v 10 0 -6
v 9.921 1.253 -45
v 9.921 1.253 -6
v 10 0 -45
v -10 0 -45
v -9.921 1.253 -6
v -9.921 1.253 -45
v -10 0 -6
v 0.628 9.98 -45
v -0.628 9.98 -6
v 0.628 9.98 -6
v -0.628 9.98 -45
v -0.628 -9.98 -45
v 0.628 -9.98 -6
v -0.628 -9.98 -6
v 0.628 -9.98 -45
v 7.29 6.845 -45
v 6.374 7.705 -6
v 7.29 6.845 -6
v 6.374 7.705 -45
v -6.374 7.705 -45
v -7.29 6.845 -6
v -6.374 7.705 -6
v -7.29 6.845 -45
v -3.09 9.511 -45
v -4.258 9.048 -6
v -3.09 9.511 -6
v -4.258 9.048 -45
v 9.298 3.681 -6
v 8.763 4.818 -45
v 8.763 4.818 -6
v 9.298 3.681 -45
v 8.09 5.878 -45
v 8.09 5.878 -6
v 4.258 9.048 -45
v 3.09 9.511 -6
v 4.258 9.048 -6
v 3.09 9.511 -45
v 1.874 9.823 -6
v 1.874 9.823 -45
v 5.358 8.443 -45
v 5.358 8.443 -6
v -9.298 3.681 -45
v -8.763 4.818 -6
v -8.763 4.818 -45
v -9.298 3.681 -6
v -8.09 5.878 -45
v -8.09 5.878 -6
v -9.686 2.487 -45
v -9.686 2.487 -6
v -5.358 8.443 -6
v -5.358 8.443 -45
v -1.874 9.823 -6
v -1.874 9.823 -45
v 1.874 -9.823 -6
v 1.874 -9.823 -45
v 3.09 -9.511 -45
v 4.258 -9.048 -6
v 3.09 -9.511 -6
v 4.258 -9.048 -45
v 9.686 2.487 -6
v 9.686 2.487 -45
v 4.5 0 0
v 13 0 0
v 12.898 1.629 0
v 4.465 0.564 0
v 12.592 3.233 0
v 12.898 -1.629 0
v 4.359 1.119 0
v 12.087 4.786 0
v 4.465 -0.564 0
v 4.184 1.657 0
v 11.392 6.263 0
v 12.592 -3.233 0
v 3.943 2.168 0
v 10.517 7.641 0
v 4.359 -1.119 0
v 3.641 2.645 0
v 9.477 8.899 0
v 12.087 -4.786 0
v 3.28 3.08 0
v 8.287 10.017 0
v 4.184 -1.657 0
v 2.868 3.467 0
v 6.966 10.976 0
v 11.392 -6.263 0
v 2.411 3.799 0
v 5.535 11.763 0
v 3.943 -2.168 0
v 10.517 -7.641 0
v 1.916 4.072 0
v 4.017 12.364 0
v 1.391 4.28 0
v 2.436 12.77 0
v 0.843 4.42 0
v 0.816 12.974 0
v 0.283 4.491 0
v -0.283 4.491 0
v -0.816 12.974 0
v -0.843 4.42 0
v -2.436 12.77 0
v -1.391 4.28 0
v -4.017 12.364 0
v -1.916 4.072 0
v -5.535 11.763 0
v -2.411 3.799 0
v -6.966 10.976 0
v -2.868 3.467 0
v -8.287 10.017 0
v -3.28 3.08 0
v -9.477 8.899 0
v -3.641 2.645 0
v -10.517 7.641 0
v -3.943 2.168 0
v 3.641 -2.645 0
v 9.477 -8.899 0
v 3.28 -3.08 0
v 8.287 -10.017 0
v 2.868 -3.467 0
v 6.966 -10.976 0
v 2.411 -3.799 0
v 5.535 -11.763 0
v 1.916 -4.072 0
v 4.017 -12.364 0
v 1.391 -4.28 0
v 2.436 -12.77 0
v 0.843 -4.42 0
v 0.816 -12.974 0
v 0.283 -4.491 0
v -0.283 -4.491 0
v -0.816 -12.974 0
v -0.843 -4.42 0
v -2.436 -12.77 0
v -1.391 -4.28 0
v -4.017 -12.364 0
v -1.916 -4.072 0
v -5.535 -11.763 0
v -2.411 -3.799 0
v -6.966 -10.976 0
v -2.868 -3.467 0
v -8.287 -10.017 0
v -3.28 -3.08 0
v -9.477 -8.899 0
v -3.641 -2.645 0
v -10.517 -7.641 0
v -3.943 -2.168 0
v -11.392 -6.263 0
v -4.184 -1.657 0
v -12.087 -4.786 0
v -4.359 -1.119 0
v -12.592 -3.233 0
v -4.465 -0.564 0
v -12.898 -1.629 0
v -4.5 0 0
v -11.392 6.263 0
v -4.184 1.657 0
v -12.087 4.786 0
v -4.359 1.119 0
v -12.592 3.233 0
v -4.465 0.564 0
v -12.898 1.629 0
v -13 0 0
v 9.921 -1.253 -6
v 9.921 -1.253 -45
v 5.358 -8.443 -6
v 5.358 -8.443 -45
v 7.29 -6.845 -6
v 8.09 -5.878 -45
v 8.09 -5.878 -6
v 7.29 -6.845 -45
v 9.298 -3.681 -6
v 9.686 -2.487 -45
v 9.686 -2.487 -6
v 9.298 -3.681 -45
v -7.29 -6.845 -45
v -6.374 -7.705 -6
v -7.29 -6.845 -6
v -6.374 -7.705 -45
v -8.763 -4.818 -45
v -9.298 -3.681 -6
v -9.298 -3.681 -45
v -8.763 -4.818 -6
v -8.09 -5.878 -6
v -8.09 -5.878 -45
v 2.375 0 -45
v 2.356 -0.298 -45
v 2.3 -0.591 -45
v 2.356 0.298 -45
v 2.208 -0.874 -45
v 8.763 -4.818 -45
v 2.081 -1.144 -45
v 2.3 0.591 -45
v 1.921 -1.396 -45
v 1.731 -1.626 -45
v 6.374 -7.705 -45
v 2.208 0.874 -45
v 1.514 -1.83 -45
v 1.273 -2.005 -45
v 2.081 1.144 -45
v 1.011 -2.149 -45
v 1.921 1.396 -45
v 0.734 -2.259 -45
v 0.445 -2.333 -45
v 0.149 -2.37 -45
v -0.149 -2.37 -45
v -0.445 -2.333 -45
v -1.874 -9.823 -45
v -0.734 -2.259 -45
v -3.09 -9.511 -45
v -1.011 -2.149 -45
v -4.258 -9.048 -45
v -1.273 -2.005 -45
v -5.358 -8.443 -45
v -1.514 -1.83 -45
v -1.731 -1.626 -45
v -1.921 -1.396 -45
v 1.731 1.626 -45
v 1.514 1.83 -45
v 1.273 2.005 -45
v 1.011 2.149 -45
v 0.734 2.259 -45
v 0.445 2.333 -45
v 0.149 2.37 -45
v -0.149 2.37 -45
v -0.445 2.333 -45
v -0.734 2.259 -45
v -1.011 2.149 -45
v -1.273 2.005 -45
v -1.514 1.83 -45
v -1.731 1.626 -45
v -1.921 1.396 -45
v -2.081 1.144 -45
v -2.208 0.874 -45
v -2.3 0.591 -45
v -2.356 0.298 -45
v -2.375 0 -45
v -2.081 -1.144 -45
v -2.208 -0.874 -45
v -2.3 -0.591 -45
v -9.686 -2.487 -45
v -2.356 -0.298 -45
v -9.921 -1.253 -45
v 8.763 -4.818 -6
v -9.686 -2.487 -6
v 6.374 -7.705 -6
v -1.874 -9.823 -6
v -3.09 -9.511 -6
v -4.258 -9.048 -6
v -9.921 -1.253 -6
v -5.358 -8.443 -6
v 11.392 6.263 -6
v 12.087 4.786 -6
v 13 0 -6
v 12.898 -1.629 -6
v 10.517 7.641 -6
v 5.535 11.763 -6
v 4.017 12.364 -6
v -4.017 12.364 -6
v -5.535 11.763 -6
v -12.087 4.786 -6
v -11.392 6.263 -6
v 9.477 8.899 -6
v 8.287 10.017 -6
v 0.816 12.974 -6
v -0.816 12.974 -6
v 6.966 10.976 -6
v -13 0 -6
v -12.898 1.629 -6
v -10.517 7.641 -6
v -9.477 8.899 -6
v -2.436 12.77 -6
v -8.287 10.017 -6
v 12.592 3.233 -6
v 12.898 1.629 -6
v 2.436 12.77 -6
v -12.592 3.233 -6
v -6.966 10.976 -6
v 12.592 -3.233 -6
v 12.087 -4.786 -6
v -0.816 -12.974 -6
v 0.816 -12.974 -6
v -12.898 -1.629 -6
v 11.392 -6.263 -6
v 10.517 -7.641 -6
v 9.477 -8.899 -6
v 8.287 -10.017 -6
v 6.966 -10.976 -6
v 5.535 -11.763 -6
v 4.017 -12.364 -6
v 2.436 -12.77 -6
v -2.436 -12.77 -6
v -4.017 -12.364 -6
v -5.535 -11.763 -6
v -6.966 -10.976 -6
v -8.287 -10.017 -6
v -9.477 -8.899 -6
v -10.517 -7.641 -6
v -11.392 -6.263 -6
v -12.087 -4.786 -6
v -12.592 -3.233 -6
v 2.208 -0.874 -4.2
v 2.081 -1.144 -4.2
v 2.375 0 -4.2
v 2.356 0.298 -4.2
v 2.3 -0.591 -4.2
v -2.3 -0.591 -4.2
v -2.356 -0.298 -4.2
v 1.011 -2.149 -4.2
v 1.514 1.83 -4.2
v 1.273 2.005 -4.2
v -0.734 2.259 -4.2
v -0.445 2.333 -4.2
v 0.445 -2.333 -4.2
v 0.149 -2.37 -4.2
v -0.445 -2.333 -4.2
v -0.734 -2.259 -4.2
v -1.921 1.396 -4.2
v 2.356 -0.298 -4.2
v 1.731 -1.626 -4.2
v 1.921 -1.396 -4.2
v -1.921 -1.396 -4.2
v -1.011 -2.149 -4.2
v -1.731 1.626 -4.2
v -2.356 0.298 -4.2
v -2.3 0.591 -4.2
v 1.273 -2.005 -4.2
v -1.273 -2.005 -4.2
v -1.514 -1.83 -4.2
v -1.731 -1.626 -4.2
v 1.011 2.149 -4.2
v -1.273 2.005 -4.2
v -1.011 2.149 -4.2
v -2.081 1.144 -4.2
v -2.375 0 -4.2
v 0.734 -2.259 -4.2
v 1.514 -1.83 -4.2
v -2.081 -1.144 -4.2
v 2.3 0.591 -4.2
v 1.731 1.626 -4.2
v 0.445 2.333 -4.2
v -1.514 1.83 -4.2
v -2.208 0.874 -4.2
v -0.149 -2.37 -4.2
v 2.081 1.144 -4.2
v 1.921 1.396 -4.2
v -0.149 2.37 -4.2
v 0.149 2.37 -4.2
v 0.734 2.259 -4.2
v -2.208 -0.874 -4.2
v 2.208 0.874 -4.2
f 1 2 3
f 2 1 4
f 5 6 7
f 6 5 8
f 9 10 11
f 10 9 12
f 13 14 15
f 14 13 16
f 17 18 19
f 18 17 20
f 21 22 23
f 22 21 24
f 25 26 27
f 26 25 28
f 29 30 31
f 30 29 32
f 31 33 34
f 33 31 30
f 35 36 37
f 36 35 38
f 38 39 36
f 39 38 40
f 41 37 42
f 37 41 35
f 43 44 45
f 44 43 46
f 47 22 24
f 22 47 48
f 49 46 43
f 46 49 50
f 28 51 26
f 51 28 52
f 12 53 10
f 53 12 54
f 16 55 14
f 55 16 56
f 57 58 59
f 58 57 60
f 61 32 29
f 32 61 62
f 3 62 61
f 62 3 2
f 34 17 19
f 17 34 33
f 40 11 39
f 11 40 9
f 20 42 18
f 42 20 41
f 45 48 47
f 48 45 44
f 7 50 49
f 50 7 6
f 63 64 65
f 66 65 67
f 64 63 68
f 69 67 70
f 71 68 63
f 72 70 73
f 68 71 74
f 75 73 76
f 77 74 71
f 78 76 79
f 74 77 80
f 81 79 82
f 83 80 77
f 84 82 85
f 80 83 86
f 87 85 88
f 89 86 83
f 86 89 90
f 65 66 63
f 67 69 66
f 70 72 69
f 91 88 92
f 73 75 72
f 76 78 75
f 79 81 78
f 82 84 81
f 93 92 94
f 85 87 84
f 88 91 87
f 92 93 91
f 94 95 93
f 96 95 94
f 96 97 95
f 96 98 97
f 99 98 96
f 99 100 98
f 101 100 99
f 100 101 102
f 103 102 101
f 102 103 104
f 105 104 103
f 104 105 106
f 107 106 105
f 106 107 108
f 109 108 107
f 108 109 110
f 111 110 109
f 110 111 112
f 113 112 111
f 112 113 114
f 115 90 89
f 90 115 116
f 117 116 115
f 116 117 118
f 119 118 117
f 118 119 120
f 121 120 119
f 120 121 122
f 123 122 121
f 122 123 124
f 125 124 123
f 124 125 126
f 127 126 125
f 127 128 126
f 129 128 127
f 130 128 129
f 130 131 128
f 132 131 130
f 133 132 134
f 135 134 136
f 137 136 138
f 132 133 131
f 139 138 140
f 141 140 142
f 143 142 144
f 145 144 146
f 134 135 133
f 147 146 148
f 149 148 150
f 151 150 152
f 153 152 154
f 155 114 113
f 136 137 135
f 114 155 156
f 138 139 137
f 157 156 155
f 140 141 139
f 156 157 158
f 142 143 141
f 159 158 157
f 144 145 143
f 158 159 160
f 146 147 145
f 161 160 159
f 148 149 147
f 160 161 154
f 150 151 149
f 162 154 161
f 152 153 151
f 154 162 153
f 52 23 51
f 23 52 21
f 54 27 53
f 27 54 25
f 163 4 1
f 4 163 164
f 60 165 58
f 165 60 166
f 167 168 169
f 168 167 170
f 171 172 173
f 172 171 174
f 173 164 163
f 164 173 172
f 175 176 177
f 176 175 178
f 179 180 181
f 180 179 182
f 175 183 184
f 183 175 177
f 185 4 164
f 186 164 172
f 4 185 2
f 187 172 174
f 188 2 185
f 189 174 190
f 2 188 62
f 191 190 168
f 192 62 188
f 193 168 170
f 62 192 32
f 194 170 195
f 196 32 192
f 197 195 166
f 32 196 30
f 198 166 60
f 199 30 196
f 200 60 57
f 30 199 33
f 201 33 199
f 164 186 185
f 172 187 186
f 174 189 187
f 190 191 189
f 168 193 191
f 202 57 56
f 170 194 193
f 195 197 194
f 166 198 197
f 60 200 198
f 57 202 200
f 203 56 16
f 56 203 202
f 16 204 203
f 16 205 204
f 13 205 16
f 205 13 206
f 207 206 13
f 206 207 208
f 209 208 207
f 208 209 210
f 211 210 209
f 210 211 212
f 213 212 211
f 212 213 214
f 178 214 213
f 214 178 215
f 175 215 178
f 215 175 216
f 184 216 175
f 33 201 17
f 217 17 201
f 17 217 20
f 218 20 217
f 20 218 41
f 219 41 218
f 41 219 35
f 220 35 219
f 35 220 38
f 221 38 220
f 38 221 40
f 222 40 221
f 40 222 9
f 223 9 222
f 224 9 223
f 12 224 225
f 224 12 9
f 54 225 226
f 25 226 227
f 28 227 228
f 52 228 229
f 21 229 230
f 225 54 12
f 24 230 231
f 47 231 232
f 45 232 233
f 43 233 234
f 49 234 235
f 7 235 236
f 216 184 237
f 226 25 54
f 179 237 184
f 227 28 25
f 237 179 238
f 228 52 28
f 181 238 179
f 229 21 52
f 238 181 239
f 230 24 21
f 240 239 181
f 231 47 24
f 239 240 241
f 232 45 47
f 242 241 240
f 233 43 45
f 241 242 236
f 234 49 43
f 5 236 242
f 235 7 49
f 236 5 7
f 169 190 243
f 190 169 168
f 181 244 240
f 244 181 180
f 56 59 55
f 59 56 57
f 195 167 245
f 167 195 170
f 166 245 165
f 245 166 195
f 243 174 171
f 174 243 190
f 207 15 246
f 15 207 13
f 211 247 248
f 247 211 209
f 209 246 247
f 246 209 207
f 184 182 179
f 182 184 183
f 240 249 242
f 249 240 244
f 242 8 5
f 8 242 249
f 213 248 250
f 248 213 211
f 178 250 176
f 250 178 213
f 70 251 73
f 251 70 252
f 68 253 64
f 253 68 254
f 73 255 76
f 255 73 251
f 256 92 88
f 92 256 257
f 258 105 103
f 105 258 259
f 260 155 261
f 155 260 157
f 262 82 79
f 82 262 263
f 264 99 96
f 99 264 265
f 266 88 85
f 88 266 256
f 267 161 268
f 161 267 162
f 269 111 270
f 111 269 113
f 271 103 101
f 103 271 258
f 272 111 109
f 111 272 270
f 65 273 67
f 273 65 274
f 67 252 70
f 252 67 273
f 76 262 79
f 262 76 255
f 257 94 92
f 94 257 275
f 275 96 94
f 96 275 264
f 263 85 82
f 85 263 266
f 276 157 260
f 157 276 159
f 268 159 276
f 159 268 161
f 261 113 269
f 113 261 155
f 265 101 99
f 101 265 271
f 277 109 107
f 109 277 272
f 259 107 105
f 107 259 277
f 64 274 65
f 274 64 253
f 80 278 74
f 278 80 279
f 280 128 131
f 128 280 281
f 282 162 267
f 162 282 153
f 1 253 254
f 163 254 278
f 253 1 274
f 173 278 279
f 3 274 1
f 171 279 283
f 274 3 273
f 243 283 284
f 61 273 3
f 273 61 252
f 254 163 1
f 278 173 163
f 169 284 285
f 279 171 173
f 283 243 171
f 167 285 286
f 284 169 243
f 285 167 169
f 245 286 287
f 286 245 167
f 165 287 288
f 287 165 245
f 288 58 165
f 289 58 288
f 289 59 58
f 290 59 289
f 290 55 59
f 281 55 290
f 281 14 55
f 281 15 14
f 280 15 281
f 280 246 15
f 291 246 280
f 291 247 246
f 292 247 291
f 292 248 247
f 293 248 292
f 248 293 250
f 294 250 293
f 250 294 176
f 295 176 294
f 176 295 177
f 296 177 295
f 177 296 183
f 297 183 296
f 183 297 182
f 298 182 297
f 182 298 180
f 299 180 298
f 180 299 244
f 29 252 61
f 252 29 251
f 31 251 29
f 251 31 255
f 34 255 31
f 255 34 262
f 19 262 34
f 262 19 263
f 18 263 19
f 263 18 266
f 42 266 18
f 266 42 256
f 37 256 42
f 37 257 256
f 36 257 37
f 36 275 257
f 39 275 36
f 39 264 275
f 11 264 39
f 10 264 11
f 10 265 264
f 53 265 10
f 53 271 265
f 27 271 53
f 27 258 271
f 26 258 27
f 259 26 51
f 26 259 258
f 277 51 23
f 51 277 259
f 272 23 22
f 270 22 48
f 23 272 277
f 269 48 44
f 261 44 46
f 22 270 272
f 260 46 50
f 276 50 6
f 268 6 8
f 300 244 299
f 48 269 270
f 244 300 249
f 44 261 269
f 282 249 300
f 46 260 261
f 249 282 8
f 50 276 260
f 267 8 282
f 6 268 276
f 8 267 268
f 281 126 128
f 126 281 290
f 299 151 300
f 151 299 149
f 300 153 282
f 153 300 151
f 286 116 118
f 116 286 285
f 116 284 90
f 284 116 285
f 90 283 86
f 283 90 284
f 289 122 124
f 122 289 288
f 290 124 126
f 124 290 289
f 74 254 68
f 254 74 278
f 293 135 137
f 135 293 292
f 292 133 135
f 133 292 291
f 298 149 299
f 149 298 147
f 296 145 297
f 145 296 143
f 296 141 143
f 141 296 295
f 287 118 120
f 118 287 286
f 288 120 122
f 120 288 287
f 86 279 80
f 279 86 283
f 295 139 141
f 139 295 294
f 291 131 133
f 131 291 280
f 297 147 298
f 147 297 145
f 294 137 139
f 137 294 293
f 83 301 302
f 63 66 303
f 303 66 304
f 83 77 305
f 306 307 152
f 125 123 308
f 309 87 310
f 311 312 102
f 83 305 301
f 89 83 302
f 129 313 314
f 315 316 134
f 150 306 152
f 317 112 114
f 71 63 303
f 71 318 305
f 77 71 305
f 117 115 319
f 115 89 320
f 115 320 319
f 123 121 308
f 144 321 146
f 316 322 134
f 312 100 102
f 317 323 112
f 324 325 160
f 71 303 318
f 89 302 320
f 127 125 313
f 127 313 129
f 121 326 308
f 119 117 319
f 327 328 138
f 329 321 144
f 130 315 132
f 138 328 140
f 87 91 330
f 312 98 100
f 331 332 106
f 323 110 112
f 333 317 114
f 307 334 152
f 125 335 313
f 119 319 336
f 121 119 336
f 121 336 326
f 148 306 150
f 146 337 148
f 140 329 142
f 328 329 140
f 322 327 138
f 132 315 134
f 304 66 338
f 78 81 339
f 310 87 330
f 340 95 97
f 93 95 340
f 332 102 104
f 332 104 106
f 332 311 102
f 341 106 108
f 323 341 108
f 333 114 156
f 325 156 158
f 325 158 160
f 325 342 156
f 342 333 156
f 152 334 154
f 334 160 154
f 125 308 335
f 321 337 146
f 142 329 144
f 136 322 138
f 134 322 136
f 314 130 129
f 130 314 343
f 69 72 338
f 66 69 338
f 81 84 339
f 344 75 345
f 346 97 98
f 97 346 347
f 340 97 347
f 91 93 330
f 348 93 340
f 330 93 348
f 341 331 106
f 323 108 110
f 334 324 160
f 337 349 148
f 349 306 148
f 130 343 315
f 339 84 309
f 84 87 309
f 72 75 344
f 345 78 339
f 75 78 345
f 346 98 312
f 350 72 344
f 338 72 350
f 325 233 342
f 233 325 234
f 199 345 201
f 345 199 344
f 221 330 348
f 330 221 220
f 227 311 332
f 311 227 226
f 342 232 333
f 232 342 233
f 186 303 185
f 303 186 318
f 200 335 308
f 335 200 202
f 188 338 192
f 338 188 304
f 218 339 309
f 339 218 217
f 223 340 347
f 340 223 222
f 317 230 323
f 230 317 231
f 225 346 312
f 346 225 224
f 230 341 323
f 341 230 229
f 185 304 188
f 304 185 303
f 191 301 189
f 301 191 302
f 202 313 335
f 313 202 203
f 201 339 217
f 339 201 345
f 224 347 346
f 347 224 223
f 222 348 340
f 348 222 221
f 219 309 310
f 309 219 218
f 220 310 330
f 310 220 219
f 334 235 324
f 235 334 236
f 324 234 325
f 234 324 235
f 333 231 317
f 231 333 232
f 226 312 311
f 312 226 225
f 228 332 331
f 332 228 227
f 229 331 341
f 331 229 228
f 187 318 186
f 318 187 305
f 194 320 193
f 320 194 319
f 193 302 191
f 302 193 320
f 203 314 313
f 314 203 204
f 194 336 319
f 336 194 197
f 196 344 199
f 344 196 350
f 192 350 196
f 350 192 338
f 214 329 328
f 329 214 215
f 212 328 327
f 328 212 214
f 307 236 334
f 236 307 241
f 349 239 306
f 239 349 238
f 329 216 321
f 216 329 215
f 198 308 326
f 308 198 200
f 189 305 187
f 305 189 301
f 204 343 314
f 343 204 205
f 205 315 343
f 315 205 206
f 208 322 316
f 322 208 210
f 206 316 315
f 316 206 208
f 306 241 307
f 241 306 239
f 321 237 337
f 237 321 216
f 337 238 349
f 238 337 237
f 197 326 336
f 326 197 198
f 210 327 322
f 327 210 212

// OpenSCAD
$fn = 50;


difference() {
	union() {
		translate(v = [0, 0, -45.0000000000]) {
			cylinder(h = 45, r = 10.0000000000);
		}
		translate(v = [0, 0, -6.0000000000]) {
			cylinder(h = 6, r = 13.0000000000);
		}
	}
	union() {
		translate(v = [0, 0, 0]) {
			rotate(a = [0, 0, 0]) {
				difference() {
					union() {
						#translate(v = [0, 0, -45.0000000000]) {
							cylinder(h = 45, r = 2.2500000000);
						}
						#translate(v = [0, 0, -4.2000000000]) {
							cylinder(h = 4.2000000000, r = 10.0000000000, r1 = 2.3750000000, r2 = 4.5000000000);
						}
						#translate(v = [0, 0, -45.0000000000]) {
							cylinder(h = 45, r = 2.3750000000);
						}
						#translate(v = [0, 0, -45.0000000000]) {
							cylinder(h = 45, r = 2.2500000000);
						}
					}
					union();
				}
			}
		}
	}
}
